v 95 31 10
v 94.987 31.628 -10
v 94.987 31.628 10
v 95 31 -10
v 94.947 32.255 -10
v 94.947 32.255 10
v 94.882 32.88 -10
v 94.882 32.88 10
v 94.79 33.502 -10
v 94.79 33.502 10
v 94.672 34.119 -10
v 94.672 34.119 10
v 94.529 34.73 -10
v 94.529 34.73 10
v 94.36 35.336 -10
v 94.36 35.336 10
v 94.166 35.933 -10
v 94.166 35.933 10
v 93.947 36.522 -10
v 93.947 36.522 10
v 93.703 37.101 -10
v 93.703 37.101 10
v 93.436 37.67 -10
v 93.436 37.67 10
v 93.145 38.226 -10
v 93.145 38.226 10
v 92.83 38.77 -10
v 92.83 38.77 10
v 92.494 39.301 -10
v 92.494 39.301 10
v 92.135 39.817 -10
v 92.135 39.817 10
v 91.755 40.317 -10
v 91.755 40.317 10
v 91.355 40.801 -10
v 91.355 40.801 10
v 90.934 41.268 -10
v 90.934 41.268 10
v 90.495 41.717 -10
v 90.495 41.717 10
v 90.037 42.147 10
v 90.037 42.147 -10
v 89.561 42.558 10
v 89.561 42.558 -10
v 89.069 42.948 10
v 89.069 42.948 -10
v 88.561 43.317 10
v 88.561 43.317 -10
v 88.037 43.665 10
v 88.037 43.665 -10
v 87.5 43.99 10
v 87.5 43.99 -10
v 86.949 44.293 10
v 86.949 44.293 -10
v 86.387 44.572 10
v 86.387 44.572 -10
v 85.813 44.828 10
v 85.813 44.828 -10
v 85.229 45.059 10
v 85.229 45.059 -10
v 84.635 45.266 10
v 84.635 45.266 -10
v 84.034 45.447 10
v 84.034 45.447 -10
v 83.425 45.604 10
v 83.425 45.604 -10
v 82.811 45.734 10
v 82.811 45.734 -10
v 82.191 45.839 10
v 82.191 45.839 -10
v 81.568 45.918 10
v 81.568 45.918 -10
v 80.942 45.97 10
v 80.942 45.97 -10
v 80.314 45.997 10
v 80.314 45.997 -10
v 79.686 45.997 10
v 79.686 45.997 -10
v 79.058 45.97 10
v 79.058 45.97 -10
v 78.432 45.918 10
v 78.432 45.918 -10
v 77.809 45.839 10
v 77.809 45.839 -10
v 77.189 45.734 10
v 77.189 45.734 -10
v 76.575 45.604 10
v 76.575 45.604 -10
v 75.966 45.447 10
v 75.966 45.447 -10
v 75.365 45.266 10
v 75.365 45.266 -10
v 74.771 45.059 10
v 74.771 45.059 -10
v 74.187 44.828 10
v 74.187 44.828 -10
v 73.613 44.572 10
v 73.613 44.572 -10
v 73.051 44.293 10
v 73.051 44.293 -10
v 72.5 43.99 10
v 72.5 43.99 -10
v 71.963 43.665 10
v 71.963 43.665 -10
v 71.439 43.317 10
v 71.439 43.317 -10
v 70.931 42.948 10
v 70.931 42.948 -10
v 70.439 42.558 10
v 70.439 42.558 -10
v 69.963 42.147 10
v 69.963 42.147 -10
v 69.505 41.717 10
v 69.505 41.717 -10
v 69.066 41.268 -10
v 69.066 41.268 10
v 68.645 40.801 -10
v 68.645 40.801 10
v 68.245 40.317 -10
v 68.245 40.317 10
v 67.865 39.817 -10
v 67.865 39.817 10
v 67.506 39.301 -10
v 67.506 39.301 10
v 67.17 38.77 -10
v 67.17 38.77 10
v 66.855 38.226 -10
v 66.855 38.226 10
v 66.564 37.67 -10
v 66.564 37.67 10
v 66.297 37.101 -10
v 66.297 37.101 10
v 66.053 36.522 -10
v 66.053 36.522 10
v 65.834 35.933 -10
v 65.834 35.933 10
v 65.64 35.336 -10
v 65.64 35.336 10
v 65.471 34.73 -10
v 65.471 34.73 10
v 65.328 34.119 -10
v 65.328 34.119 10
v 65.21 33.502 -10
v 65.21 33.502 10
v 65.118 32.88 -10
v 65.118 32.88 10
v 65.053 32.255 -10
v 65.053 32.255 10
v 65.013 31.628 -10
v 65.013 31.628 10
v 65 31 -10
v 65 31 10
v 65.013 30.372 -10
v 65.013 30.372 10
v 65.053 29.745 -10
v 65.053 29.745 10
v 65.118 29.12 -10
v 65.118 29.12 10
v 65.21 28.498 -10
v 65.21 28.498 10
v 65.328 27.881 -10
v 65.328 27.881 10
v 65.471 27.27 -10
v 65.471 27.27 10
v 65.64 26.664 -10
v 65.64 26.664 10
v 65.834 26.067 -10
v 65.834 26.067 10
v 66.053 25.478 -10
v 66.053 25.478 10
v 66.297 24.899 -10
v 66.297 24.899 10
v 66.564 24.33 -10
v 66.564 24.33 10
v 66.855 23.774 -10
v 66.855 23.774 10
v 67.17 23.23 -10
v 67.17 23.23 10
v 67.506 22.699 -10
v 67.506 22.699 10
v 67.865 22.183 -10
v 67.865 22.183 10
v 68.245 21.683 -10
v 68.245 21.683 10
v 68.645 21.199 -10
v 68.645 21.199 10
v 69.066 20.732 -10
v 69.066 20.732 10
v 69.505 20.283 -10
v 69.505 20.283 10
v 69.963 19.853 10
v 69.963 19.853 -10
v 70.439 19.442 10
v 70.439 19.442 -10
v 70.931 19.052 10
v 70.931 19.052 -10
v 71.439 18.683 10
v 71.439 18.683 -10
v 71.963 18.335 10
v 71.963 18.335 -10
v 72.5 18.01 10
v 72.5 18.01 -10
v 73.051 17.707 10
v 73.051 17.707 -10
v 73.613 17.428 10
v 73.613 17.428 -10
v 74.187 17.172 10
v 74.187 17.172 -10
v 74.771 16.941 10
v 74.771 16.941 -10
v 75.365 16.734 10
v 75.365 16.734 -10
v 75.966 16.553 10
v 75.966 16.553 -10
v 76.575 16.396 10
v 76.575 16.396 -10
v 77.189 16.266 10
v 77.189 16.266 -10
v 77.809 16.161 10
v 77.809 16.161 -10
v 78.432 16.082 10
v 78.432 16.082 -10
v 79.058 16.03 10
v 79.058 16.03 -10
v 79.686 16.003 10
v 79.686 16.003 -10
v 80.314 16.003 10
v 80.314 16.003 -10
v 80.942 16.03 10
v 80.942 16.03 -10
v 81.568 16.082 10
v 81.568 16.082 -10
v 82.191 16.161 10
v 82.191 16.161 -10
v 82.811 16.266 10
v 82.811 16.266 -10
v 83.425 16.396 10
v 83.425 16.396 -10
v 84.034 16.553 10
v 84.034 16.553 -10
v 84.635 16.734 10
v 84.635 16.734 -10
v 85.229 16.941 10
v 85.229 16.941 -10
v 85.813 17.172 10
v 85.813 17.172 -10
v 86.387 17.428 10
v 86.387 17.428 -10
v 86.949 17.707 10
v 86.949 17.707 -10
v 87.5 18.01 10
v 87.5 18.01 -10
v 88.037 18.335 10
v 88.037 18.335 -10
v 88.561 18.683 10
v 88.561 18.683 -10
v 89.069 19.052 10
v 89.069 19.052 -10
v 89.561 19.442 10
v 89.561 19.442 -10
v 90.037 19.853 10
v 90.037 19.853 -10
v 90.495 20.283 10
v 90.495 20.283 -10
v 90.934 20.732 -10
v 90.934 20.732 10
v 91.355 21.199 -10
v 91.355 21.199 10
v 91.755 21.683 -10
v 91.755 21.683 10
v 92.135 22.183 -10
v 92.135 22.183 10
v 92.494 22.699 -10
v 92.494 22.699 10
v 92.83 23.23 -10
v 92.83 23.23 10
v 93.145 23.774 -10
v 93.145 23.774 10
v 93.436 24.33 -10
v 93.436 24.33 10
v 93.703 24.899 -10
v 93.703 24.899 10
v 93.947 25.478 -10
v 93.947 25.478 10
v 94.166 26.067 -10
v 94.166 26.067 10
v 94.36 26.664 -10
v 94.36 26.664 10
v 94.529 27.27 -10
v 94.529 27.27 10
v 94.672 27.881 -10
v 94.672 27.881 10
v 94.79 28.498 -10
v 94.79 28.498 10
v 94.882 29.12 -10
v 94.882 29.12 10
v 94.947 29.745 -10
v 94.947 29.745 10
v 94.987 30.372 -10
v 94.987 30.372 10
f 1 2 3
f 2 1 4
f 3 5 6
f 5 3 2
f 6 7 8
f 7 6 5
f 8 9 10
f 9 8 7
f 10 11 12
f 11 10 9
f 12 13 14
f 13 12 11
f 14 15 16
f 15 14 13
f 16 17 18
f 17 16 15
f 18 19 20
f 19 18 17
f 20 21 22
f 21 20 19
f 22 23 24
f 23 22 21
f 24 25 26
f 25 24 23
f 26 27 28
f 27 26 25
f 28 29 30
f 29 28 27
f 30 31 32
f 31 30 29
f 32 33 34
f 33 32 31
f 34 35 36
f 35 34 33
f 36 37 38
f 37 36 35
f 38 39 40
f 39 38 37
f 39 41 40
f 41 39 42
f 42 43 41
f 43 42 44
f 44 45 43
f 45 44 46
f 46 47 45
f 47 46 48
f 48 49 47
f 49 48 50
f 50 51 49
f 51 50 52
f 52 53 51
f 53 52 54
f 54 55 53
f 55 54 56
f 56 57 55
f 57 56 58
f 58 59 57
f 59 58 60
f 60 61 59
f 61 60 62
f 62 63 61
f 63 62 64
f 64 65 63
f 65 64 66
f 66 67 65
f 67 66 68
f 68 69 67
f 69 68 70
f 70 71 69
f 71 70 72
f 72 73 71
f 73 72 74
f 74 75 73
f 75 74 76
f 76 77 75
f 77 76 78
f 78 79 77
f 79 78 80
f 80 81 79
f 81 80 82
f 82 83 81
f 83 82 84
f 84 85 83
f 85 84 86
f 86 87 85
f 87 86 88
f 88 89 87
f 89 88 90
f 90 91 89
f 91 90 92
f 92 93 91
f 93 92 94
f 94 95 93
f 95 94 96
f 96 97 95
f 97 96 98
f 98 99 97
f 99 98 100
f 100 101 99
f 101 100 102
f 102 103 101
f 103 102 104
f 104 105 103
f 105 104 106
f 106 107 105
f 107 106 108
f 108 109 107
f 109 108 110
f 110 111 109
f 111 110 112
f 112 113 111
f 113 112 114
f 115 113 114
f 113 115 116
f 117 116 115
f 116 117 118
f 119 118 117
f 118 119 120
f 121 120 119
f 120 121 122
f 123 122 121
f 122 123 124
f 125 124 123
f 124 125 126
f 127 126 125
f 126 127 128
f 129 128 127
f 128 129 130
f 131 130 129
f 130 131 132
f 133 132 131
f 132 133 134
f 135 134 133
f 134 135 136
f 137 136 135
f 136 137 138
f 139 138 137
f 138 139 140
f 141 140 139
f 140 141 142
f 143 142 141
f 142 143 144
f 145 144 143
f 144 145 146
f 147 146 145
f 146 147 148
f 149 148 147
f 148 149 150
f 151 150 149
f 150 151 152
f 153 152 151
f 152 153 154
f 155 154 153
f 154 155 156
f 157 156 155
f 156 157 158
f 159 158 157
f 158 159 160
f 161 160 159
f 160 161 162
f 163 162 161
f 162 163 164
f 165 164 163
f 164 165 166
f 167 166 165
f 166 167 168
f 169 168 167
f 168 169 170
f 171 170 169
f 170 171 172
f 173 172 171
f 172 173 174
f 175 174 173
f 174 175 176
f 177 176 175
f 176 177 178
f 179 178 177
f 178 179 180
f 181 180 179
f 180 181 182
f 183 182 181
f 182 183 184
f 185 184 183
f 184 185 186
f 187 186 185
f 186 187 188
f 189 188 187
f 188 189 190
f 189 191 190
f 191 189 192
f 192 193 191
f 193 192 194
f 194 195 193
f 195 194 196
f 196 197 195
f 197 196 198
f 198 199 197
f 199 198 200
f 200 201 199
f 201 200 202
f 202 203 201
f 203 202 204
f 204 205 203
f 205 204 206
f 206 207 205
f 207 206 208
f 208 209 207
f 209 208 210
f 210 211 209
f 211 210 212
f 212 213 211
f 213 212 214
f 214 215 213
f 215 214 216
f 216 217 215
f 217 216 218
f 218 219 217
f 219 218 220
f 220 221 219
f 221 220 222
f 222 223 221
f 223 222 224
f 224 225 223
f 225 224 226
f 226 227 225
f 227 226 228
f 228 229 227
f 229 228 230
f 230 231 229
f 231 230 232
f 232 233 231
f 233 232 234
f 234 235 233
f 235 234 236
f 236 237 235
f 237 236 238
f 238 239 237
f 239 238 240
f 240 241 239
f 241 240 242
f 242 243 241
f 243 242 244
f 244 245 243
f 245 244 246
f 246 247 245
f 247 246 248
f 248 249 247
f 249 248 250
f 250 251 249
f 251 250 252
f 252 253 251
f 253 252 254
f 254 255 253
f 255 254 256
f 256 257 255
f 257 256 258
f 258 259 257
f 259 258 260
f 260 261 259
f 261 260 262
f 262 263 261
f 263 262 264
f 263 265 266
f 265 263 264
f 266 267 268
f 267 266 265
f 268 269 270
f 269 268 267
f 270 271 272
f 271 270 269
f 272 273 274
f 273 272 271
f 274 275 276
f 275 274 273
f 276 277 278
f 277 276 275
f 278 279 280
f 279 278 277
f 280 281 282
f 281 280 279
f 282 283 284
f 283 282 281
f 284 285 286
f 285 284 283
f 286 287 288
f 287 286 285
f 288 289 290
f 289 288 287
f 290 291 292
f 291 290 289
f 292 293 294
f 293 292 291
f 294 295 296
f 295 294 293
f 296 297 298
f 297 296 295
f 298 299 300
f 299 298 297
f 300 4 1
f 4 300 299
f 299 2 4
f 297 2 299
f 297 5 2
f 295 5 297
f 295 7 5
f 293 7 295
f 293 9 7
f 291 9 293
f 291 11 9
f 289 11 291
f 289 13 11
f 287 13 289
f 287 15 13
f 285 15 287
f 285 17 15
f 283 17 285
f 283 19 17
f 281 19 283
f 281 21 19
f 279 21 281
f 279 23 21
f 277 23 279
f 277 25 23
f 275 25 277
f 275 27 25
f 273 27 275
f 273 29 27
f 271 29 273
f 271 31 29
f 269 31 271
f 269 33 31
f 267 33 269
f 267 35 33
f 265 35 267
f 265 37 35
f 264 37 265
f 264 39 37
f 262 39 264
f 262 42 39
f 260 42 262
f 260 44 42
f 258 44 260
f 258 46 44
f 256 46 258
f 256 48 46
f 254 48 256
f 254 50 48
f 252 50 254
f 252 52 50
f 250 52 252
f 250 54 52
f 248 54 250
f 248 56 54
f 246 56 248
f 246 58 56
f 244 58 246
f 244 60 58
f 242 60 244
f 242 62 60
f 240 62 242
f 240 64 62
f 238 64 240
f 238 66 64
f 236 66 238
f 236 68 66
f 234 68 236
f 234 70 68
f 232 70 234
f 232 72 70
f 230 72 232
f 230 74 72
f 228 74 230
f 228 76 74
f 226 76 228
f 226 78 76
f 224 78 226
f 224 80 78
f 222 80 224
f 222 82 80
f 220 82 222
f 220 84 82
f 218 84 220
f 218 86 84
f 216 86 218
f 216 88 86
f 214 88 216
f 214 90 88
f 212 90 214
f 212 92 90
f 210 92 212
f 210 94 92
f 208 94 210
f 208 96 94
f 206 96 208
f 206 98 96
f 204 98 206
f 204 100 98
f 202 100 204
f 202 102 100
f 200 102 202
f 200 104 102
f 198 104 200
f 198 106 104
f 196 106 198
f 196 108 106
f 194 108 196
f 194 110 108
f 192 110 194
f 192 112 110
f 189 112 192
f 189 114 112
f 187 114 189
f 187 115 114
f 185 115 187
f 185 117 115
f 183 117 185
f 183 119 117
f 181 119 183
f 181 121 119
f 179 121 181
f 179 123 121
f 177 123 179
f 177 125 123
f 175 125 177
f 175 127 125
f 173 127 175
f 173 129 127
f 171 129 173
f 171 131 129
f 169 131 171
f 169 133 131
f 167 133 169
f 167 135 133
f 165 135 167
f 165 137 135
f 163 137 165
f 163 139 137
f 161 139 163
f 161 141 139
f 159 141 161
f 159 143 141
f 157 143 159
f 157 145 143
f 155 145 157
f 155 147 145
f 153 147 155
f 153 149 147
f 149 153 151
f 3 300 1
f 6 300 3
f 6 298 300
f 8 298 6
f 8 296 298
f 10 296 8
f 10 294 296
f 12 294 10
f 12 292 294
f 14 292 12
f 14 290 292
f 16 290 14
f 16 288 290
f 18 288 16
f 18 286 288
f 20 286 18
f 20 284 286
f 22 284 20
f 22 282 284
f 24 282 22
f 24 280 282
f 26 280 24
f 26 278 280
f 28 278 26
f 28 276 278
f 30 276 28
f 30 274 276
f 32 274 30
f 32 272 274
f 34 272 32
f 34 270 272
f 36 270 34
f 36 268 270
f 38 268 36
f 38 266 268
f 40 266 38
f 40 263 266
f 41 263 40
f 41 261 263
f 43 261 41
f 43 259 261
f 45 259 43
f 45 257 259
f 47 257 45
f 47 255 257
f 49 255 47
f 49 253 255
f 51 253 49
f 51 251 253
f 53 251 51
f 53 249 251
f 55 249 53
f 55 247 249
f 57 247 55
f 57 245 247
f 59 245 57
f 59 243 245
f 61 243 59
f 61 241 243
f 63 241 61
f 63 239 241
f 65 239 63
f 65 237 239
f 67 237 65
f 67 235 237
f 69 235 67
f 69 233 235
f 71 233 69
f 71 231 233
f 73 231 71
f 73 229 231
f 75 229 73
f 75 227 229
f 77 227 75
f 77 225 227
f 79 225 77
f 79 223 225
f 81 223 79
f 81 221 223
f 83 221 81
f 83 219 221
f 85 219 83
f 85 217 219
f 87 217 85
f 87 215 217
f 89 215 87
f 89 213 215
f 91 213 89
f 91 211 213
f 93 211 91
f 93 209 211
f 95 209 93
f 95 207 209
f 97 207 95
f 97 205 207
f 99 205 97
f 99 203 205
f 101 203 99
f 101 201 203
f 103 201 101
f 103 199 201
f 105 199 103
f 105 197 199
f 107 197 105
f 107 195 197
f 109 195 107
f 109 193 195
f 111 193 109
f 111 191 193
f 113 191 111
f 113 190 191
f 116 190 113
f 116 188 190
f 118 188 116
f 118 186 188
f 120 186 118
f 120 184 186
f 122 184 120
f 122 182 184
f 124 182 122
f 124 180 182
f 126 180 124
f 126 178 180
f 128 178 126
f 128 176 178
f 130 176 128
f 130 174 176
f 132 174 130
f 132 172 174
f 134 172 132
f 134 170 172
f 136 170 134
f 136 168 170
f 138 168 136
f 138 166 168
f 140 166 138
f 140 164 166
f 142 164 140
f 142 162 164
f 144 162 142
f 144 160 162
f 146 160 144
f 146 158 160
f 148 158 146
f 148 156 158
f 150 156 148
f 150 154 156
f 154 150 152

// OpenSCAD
$fn = 150;

translate([80, 31, 0])
rotate([0, 0, 0])
cylinder(20, 15, 15, true);
